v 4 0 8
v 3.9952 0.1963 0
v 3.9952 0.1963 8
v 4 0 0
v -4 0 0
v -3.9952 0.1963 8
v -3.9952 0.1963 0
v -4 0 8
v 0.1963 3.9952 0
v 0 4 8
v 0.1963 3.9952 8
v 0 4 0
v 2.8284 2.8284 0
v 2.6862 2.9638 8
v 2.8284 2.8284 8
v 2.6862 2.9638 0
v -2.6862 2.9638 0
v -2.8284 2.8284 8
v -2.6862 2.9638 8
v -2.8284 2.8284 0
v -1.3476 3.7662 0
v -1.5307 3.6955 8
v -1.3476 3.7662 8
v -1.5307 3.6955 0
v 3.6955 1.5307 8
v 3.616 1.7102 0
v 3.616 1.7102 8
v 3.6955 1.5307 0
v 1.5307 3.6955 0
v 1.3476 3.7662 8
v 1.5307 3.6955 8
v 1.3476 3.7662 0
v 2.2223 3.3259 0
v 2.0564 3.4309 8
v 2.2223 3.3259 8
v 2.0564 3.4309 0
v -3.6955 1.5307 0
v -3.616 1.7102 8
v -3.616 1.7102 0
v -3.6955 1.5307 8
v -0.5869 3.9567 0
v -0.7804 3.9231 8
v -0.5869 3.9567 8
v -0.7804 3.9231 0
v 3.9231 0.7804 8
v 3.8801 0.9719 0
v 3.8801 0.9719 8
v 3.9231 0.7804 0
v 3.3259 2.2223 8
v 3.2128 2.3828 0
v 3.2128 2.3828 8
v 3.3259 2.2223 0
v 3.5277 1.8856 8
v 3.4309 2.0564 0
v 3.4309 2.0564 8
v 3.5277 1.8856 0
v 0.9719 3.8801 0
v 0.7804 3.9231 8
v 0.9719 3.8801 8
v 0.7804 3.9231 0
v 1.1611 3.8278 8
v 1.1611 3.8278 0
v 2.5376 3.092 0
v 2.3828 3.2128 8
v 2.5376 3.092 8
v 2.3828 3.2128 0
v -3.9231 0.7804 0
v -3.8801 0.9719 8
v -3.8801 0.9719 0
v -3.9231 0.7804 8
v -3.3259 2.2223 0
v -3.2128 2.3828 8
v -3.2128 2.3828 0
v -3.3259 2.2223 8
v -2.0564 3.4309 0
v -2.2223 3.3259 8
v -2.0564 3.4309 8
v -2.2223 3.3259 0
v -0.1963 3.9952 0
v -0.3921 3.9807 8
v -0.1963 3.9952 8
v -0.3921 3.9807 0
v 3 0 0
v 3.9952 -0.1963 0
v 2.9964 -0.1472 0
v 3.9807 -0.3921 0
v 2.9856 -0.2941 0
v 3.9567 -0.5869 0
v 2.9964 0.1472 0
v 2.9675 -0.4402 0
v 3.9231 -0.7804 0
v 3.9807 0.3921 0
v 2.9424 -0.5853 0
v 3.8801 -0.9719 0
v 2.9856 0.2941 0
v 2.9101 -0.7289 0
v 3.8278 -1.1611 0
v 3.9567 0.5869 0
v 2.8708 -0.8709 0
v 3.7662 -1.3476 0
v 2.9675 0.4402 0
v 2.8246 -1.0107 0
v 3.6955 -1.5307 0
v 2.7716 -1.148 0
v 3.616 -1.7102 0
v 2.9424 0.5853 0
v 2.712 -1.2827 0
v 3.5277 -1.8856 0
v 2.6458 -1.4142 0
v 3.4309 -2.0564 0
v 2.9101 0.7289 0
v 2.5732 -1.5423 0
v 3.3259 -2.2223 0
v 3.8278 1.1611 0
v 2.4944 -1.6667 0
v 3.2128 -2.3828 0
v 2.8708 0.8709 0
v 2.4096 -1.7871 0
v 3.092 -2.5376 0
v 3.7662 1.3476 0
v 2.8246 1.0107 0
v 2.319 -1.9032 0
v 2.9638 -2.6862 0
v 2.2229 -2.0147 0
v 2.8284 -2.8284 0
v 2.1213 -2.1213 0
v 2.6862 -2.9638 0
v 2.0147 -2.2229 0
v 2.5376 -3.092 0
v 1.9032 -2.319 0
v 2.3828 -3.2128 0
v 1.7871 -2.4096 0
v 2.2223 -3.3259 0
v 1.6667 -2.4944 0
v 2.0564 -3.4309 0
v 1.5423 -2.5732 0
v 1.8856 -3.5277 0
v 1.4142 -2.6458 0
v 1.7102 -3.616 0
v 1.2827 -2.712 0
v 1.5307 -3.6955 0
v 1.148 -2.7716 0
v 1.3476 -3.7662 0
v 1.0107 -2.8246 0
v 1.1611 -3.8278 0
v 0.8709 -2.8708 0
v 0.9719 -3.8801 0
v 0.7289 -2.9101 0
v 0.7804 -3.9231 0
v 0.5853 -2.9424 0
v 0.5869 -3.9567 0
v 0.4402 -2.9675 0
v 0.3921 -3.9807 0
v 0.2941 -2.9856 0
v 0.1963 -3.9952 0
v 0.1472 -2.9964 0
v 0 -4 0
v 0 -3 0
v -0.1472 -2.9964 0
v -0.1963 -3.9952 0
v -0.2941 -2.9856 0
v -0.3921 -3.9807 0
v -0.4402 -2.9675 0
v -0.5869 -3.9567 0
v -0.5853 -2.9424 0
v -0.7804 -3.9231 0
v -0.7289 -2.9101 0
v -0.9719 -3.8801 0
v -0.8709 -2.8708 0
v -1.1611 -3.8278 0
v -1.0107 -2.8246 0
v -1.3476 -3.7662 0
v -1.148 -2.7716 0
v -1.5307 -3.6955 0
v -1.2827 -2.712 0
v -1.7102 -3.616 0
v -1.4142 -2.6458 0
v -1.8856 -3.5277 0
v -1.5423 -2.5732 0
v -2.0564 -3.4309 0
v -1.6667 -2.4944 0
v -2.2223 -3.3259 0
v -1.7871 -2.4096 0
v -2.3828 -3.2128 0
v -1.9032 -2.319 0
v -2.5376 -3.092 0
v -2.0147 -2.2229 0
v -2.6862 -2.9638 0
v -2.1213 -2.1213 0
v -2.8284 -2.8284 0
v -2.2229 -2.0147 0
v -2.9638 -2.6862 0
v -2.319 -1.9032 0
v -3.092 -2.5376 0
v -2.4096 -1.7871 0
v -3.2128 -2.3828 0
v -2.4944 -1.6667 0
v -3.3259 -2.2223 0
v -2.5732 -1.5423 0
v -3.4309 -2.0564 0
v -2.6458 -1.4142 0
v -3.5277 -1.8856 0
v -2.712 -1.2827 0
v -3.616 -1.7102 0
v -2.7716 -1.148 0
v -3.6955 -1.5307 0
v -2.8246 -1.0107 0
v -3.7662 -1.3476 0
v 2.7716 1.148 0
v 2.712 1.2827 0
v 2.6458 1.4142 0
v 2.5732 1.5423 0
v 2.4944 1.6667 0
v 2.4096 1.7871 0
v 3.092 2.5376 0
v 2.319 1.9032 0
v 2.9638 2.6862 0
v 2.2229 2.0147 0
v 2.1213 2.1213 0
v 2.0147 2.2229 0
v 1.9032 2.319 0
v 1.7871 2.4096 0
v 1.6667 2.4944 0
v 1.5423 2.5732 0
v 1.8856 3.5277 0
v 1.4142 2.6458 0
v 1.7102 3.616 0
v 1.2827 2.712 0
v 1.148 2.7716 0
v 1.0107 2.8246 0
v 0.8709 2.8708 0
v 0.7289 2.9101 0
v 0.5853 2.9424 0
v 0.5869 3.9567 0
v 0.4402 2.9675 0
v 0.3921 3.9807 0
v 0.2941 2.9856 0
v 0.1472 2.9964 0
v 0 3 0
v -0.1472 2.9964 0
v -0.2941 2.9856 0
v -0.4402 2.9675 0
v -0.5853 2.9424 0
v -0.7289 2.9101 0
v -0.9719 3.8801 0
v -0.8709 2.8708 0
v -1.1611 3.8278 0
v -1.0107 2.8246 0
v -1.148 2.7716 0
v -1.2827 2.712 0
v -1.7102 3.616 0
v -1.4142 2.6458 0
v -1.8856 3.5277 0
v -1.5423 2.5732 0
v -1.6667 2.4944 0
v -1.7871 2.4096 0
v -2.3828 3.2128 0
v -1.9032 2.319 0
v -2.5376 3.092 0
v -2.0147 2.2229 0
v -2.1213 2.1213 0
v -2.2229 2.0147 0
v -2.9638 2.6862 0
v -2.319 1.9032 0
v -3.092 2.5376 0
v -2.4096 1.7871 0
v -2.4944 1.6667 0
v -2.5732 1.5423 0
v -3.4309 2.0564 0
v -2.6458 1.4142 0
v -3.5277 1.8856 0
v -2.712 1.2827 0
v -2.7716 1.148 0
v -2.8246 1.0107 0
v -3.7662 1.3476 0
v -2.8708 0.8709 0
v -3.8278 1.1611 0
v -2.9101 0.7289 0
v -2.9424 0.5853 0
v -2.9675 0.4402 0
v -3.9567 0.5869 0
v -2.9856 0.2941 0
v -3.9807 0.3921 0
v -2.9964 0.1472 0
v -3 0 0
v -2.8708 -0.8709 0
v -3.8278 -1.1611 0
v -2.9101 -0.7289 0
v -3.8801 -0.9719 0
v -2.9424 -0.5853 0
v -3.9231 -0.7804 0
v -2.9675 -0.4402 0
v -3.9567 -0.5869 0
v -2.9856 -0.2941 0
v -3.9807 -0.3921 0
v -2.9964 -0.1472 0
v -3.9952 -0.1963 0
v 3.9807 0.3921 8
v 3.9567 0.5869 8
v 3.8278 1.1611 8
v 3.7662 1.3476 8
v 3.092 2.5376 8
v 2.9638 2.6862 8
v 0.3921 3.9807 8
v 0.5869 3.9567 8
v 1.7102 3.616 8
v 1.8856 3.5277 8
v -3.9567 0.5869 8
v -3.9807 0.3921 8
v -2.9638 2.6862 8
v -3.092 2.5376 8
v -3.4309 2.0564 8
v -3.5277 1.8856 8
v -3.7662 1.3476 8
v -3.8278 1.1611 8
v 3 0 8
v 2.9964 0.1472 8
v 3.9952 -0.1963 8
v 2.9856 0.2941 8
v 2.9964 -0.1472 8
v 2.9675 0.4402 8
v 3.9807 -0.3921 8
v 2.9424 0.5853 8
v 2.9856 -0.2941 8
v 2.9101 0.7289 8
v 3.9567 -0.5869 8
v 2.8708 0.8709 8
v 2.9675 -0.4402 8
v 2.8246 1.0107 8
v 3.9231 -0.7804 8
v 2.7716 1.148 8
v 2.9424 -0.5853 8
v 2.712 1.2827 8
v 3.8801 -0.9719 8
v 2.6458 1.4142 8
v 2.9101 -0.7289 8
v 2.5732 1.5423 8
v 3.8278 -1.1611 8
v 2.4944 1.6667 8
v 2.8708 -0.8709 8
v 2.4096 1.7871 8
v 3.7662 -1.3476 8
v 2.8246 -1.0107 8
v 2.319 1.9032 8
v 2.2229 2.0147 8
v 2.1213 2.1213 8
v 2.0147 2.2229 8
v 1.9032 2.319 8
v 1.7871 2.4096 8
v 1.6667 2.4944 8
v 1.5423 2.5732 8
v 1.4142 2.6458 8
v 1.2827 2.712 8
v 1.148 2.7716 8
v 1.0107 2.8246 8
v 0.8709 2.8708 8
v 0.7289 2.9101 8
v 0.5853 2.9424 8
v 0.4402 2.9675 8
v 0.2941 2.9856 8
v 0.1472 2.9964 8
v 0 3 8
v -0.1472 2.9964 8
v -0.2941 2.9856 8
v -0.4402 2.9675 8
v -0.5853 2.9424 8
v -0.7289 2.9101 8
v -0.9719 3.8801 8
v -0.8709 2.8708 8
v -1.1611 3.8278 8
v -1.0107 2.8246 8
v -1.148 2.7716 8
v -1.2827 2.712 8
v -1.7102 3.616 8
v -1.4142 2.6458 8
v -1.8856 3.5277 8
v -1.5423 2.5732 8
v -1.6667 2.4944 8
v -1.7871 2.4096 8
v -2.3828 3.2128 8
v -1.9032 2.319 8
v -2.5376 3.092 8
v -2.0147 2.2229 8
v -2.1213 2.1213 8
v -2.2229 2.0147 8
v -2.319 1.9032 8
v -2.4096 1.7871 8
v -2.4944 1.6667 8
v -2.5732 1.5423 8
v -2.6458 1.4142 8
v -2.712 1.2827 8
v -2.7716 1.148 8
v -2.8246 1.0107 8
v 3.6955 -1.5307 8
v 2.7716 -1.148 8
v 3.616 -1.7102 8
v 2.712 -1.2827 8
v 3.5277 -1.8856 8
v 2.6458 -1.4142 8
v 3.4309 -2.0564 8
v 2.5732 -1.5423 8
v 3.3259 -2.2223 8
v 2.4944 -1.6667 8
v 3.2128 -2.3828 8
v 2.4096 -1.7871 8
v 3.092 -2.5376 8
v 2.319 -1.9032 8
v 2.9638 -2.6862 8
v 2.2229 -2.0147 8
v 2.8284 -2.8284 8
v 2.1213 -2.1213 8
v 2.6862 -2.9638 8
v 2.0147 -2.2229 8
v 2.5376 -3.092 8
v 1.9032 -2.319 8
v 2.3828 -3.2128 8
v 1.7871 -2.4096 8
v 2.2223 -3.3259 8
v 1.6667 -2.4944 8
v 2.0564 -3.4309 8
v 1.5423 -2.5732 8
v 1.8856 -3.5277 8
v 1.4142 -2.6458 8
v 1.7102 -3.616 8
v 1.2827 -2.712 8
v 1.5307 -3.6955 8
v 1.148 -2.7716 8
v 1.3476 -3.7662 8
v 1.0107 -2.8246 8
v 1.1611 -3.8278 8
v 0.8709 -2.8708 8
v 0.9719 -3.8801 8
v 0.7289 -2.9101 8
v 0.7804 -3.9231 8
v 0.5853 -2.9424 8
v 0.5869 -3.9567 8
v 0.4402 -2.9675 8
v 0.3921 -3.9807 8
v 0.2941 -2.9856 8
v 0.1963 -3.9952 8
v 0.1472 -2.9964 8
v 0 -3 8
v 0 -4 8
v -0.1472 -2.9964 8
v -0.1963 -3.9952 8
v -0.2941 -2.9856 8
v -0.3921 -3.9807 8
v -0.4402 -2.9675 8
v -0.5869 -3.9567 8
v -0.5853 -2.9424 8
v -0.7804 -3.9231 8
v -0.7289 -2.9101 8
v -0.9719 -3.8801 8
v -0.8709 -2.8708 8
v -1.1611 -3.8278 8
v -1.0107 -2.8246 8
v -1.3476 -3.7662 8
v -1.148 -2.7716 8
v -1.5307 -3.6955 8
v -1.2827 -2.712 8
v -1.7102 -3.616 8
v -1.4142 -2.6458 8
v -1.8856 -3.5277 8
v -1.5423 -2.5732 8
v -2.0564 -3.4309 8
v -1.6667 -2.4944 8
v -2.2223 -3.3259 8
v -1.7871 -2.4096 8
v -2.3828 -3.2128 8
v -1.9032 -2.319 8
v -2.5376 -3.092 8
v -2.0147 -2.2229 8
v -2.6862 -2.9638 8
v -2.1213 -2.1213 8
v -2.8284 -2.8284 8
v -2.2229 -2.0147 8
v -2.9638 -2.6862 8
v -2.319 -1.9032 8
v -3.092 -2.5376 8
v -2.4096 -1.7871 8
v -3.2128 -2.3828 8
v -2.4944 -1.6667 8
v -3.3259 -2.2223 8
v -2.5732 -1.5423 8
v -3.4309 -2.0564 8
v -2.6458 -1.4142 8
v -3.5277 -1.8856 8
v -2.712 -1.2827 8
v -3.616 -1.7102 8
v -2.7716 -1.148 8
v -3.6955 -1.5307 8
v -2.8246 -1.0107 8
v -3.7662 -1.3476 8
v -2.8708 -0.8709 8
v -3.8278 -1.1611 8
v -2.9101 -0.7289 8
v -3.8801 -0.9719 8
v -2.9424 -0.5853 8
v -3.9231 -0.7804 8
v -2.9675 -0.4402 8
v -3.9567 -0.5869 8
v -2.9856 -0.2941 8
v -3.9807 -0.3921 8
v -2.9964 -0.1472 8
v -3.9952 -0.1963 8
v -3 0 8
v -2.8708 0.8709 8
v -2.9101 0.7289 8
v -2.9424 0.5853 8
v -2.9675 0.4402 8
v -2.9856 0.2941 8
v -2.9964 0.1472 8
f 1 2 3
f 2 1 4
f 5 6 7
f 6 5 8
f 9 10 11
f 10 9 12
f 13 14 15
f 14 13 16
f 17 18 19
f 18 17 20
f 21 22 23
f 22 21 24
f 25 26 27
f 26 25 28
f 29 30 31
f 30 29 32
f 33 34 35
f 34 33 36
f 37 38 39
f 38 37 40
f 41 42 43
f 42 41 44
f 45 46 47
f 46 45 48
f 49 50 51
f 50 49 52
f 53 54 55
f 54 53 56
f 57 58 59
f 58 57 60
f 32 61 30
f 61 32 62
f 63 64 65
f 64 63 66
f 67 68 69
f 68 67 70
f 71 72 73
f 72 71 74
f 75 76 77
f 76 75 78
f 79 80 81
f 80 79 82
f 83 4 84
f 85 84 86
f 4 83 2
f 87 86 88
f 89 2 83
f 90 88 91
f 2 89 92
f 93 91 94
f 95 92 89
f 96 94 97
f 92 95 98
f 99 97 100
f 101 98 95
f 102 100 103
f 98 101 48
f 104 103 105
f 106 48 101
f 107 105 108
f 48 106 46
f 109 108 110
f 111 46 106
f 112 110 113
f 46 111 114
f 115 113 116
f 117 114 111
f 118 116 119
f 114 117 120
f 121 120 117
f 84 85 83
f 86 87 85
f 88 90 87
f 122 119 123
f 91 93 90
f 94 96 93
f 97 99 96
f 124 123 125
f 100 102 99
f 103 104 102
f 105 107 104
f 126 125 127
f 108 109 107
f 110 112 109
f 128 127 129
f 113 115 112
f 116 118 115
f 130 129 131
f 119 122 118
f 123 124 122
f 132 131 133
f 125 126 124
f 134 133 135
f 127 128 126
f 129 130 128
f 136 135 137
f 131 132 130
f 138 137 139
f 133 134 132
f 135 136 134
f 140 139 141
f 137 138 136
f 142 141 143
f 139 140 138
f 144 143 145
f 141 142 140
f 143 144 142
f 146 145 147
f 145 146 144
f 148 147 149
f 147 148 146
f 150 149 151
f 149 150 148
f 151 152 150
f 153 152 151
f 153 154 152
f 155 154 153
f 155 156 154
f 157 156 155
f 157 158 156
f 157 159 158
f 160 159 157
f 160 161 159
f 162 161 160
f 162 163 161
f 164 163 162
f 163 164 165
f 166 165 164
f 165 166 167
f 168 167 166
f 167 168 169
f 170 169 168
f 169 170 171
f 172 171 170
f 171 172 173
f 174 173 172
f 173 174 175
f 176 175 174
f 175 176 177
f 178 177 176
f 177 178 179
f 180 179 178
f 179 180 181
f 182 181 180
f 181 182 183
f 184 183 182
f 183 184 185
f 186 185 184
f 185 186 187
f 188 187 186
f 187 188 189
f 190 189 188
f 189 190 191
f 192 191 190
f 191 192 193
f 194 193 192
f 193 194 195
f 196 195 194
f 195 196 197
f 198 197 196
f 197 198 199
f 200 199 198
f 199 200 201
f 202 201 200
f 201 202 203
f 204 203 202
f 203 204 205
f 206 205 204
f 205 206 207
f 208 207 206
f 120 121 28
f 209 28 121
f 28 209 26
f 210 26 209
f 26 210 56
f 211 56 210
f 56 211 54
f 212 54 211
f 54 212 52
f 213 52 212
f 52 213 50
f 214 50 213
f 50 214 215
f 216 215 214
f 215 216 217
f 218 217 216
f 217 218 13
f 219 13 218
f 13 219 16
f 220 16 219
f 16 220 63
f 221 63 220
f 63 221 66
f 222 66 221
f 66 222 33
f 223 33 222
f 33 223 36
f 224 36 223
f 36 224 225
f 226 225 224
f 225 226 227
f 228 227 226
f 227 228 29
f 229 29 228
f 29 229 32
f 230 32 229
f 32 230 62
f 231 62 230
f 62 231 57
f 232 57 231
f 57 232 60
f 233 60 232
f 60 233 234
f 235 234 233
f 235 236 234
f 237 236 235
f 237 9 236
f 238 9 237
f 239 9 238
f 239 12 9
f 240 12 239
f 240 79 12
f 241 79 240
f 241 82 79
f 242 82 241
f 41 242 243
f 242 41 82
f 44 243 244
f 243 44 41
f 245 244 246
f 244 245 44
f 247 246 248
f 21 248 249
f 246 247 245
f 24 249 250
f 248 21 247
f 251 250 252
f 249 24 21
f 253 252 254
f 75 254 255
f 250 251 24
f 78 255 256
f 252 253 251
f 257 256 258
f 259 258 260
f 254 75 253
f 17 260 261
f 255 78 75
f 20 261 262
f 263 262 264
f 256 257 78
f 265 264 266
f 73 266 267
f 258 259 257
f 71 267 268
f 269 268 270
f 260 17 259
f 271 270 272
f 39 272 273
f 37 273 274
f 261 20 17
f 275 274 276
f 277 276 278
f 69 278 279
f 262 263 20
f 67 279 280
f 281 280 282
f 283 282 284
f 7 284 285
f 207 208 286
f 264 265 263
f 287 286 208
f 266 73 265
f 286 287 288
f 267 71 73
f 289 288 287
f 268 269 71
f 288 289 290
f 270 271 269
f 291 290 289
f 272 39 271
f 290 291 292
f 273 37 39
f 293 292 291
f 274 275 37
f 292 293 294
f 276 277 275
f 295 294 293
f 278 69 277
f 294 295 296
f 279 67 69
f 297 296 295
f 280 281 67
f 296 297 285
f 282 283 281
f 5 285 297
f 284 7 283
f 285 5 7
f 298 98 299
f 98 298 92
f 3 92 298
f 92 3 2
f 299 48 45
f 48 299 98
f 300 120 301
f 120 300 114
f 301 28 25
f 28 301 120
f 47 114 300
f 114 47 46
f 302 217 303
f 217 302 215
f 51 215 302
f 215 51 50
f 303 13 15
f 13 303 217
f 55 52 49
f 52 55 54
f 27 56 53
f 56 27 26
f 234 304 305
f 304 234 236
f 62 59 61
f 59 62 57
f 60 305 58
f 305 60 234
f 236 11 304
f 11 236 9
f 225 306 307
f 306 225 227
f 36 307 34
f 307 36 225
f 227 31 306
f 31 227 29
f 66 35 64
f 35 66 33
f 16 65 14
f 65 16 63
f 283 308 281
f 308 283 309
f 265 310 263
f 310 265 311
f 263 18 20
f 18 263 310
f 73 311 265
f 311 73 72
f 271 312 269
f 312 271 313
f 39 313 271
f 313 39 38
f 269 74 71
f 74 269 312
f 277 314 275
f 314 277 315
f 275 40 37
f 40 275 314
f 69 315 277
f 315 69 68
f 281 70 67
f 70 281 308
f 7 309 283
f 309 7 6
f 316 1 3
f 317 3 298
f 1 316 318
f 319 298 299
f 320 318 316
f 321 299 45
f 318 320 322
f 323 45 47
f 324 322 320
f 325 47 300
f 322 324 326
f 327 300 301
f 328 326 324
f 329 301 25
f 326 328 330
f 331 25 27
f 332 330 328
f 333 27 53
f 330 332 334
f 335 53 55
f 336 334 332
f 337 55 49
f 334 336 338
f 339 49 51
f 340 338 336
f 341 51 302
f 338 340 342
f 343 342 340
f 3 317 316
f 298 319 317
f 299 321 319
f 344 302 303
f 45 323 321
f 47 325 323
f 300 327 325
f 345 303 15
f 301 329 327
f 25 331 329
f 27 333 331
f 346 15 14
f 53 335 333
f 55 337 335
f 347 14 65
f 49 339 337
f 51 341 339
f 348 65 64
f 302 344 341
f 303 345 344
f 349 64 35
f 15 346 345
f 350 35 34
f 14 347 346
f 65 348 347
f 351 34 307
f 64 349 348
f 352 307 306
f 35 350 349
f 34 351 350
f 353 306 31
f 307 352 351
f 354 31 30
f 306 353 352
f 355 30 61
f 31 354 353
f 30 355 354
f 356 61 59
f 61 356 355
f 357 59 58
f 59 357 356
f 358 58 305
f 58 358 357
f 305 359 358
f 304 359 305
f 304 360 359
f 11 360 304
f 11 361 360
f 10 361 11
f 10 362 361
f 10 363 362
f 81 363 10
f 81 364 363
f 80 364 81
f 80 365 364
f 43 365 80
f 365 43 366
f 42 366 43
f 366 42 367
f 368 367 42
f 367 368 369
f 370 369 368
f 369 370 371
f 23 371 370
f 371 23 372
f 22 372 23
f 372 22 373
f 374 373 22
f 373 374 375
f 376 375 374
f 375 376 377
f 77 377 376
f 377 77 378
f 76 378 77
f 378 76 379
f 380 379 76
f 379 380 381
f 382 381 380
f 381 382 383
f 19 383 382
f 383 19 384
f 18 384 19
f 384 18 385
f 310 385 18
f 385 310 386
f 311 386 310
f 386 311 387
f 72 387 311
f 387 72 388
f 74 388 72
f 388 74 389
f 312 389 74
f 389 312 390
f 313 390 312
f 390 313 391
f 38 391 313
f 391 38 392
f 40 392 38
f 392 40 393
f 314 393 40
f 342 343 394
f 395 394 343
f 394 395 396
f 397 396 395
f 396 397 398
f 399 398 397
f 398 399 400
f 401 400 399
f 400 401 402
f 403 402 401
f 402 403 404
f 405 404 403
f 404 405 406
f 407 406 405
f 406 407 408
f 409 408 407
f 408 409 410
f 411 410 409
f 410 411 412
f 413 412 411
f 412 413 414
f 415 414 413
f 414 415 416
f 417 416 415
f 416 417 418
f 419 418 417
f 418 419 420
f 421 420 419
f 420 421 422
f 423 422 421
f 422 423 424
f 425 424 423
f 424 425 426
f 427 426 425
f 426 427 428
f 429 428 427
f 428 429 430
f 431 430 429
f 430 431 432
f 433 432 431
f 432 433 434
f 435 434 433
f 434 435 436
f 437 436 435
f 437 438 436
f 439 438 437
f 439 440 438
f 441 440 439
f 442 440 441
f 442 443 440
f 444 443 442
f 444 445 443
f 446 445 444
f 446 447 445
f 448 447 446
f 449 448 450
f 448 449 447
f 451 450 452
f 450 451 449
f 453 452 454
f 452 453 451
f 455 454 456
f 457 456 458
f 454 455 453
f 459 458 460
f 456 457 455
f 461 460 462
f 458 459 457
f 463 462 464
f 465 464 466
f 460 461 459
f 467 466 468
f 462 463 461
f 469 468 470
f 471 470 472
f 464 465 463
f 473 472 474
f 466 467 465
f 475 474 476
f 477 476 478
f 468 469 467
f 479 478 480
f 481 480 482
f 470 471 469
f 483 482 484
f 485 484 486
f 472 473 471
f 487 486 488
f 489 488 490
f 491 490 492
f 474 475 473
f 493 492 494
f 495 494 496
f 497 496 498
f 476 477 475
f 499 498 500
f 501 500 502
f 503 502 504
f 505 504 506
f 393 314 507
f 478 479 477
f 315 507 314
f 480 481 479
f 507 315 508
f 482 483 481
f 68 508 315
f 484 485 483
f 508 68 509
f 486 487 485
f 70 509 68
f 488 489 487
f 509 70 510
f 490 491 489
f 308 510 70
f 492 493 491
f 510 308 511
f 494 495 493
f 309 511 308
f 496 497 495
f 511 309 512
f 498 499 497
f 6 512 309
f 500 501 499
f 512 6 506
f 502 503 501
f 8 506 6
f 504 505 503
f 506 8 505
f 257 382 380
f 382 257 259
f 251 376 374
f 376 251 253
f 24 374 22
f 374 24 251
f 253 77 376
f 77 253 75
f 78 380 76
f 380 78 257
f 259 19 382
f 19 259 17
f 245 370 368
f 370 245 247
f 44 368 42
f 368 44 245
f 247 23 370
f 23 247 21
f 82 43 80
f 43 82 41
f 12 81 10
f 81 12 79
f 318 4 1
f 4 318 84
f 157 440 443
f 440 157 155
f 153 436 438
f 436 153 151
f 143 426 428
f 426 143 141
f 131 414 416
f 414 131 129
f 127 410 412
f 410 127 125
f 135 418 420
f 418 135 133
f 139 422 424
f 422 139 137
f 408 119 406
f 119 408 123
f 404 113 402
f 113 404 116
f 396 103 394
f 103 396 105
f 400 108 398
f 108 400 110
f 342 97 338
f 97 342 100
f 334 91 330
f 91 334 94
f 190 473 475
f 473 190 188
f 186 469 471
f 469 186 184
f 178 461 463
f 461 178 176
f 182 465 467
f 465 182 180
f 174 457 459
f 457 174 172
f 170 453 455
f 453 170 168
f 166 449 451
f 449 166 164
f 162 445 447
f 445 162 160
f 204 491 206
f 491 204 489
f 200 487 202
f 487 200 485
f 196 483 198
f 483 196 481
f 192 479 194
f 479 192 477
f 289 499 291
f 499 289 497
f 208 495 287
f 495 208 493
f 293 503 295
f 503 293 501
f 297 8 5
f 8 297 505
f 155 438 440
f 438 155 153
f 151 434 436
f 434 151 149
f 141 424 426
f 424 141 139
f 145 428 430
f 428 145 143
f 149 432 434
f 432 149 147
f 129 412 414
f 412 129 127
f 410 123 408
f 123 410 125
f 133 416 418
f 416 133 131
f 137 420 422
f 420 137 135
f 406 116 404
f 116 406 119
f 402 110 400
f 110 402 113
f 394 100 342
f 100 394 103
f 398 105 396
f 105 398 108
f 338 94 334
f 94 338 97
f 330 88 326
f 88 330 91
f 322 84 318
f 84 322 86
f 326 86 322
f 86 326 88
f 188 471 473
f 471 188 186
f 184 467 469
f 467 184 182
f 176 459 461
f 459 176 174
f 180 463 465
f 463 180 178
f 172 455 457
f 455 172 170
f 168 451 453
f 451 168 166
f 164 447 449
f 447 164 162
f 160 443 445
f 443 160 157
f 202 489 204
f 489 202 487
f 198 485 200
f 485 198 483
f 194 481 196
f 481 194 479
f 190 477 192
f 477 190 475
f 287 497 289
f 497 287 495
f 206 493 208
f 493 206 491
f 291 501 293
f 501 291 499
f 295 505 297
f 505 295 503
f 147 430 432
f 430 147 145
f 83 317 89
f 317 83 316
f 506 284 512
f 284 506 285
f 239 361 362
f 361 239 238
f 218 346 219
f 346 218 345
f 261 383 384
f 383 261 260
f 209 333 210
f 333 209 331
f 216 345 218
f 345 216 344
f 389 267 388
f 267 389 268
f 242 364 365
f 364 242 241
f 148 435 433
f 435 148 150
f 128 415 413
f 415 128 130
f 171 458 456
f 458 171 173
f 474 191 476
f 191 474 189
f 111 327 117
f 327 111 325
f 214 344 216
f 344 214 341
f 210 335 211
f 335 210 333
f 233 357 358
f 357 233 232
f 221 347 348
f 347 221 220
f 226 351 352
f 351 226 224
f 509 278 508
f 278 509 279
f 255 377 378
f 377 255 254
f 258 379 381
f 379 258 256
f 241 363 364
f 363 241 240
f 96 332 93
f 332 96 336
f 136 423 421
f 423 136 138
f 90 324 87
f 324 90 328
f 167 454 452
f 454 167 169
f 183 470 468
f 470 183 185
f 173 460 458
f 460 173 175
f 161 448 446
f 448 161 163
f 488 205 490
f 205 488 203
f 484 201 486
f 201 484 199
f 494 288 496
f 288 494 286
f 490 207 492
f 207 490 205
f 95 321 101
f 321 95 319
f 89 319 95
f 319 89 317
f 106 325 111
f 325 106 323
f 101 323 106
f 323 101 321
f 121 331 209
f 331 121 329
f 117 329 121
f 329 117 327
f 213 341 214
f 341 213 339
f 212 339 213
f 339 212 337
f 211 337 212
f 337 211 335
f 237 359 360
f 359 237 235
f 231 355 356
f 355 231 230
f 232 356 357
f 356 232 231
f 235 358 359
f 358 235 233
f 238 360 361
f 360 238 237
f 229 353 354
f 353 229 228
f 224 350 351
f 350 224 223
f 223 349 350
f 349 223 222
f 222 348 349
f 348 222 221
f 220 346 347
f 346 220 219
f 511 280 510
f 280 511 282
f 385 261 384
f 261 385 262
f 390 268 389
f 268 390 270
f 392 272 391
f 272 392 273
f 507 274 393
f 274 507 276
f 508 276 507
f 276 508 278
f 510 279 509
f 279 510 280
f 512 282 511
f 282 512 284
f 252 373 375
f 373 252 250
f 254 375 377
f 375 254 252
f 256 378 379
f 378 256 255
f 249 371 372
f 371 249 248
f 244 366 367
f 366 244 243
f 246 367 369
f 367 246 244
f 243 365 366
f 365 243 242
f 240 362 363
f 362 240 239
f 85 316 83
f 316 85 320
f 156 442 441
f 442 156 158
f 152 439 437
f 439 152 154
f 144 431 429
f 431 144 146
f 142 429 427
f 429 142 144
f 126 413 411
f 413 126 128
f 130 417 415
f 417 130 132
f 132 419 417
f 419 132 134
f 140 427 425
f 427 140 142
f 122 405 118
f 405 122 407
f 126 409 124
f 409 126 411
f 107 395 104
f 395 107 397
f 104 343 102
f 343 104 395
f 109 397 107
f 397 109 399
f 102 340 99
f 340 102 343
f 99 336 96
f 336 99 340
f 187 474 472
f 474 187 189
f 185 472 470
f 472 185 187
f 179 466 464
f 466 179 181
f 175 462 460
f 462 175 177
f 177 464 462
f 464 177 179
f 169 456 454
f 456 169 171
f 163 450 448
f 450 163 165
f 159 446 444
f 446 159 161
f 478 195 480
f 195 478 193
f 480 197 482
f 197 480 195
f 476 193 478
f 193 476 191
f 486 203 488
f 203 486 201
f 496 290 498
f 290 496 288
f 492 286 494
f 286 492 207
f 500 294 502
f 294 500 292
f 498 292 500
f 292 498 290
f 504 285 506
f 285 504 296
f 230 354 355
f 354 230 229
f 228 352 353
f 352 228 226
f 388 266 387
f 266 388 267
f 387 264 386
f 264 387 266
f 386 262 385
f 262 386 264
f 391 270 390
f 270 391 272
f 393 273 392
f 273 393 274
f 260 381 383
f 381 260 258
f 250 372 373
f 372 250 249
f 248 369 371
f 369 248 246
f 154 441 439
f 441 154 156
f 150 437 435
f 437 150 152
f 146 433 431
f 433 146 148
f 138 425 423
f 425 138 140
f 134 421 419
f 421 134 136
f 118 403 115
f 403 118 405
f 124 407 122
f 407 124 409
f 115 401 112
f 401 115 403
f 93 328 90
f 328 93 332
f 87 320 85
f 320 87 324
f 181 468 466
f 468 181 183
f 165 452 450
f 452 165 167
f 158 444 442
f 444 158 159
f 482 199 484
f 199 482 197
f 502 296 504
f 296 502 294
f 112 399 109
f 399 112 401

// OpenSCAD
difference() {
    cylinder(d=8, h=8, $fn=128);
    cylinder(d=6, h=8, $fn=128);
}
